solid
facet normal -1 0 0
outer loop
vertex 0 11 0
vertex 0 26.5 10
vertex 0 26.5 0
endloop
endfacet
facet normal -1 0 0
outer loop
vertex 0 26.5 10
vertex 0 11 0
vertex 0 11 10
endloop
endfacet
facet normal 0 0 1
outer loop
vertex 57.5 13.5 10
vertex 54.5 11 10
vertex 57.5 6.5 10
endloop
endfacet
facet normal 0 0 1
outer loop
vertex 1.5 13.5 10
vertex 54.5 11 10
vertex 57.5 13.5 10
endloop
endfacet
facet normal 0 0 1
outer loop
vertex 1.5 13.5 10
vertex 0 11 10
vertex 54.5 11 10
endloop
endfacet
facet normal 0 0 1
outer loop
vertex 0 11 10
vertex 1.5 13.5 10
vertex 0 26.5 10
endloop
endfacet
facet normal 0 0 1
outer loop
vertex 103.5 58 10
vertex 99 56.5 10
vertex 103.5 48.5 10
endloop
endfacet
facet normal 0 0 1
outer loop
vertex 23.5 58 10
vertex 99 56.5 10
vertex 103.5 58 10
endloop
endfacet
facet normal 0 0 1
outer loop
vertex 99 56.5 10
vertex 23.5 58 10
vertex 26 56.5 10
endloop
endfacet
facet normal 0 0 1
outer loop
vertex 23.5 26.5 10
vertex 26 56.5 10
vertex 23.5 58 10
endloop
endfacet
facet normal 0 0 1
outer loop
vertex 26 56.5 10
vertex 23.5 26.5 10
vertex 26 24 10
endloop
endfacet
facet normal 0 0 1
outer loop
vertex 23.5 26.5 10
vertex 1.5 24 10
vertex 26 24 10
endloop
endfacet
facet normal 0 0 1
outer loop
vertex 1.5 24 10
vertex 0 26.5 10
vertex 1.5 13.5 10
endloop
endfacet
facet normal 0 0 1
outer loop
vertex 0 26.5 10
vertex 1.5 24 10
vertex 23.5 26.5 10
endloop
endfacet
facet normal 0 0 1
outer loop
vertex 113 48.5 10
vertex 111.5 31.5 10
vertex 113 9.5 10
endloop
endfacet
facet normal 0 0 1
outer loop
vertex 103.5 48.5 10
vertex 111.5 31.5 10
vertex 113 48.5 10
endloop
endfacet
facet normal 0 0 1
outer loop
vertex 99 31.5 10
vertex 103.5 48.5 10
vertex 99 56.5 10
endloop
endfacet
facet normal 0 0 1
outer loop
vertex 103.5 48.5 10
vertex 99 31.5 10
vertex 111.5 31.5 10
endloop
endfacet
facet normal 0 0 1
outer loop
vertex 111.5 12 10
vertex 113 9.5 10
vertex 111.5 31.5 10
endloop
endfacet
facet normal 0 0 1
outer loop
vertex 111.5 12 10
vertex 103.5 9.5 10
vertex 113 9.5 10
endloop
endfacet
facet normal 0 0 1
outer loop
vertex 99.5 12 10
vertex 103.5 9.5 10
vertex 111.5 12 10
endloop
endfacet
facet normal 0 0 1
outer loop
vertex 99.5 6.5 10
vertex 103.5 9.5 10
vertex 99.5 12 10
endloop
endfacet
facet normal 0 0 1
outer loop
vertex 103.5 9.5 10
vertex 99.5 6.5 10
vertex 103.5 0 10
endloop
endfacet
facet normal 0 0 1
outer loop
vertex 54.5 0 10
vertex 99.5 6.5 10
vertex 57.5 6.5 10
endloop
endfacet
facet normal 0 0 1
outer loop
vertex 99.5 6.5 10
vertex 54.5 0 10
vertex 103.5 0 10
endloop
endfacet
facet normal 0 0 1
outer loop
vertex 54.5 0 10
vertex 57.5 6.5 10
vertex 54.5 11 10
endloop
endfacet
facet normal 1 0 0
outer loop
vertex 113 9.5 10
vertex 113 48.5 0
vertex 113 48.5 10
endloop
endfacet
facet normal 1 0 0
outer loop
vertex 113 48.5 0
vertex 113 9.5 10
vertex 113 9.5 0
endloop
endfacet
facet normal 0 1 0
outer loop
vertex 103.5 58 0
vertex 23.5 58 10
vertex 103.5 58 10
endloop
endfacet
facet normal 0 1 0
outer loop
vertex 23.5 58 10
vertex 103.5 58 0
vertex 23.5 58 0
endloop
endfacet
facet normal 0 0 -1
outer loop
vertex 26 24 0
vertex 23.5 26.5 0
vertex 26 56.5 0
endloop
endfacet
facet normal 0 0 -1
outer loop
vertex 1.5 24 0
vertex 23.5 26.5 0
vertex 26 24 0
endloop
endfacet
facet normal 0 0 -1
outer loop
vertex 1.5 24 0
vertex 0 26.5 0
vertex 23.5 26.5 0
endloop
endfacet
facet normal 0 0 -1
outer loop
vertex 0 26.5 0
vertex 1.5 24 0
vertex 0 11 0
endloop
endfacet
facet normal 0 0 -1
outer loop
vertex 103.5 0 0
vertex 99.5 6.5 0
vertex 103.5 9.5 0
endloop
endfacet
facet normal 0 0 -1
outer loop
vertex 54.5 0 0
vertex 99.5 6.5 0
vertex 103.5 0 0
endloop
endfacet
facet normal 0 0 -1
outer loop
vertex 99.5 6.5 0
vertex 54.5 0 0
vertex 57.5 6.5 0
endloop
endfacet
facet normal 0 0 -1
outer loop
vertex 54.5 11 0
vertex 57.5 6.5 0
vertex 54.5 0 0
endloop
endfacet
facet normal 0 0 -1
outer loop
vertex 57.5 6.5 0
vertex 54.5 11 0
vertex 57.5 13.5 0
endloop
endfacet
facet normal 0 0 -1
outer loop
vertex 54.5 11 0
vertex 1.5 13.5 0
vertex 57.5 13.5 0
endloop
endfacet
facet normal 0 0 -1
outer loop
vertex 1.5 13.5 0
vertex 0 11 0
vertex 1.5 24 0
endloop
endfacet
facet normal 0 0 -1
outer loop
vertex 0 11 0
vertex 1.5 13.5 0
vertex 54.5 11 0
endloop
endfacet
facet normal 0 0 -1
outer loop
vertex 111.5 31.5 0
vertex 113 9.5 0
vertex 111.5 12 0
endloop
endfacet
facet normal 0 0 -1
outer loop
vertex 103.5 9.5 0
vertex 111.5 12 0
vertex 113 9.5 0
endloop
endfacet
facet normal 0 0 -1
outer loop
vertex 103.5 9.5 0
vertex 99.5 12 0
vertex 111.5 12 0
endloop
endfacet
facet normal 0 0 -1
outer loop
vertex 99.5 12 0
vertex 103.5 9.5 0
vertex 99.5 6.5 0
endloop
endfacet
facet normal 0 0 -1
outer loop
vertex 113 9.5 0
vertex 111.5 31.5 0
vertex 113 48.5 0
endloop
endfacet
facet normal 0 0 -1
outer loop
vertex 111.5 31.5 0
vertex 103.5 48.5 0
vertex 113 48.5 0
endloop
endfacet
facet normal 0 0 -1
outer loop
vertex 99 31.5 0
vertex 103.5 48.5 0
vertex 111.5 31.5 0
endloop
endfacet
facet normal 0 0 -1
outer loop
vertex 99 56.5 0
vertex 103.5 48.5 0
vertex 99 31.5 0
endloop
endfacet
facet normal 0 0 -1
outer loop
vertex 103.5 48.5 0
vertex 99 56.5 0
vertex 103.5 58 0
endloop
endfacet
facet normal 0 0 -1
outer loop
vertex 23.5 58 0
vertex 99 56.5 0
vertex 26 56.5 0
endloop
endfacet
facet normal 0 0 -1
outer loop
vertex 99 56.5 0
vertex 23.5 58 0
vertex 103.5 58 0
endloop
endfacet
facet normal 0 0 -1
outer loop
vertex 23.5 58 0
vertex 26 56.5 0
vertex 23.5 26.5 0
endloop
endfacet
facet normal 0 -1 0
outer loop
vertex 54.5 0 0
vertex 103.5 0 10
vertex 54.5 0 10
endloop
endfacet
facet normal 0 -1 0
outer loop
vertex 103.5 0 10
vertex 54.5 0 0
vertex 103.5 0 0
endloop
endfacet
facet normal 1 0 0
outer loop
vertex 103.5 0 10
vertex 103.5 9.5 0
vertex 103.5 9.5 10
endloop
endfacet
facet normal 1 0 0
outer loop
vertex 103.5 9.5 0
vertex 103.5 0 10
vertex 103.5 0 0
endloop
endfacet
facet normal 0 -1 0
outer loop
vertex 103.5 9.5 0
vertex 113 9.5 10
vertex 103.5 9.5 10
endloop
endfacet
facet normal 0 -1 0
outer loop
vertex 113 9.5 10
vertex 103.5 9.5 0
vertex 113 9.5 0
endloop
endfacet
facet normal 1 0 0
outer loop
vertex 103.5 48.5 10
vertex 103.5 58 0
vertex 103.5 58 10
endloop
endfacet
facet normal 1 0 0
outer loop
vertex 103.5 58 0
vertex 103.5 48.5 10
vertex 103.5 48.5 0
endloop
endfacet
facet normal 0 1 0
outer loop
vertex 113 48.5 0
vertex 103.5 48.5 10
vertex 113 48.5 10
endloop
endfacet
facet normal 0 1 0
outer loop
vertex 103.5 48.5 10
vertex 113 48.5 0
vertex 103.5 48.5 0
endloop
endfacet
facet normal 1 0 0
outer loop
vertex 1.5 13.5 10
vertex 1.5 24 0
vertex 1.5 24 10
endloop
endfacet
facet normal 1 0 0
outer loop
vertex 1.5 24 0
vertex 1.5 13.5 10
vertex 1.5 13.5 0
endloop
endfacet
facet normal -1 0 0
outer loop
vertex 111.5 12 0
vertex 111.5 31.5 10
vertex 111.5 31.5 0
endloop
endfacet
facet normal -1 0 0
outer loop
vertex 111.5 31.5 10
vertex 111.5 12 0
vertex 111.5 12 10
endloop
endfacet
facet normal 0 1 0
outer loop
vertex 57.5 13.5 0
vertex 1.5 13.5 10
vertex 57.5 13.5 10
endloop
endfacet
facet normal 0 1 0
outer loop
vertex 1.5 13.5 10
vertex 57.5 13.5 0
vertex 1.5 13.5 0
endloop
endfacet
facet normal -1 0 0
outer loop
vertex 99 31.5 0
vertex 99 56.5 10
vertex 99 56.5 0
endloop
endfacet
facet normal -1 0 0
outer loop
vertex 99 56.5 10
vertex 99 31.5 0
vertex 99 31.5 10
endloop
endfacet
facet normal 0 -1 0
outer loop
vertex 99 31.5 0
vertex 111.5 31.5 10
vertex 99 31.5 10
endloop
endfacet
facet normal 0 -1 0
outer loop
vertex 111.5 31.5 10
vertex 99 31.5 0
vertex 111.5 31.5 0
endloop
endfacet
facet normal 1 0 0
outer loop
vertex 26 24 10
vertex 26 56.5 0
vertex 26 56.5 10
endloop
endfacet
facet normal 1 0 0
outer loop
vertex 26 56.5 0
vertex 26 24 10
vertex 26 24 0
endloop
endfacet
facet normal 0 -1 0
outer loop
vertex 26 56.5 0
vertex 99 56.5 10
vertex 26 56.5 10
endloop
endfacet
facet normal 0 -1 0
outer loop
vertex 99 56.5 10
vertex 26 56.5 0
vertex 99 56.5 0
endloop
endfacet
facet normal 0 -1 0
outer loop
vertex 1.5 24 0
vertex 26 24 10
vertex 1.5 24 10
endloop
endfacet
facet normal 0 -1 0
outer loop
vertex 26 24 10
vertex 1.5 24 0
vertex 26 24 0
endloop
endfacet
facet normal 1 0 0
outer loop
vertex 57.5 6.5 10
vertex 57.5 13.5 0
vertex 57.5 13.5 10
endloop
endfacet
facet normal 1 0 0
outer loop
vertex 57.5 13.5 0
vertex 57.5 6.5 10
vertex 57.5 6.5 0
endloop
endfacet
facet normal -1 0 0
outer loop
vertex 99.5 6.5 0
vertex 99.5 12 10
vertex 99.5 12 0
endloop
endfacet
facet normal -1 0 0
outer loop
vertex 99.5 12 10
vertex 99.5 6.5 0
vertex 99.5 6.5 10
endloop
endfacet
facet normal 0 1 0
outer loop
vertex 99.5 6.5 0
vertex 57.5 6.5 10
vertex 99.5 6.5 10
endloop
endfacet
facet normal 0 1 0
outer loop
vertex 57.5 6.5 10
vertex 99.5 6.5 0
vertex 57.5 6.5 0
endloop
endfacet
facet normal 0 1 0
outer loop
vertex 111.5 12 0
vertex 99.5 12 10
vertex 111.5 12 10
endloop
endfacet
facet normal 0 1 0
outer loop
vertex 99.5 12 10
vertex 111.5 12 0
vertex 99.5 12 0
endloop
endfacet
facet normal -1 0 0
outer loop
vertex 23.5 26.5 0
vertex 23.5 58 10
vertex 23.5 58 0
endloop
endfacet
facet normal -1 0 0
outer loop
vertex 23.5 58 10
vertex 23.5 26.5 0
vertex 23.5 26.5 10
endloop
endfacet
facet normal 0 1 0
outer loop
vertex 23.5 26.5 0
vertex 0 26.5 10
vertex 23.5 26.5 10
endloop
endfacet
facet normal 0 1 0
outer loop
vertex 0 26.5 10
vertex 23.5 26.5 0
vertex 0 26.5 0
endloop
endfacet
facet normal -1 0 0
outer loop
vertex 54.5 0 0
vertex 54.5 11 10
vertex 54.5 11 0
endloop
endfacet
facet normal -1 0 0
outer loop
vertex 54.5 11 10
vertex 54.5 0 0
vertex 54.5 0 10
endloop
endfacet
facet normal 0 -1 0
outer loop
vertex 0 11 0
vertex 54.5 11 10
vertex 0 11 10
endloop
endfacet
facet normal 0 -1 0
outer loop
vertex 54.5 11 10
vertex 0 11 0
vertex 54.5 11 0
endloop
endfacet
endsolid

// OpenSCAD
//Rozmery kovové krabicky vnitrni
krabicka_x=113;
krabicka_y=58;
krabicka_z=10;  //38

krabicka_otvor_hrana=9.5;

//Rozmery casty modulu
pcb_x=110;
pcb_y=6;

baterka_x=73;
baterka_y=37;

konektor_x=12.5;
konektor_y=12;

SD_karta_x=42;
SD_karta_y=13;

SD_karta_mensi_x=12;
SD_karta_mensi_y=7.5;

dioda_x=24.5;
dioda_y=4.5;

difference(){

KRABICKA();
    translate([1.5,19.5,-0.5]) 
MODUL();    
    } 

module KRABICKA()
    {
    difference(){
        cube([krabicka_x,krabicka_y,krabicka_z],center=false);

//otvory
        translate([0,0,-0.5]) 
            cube([krabicka_otvor_hrana,krabicka_otvor_hrana,krabicka_z+1],center=false);
    
        translate([krabicka_x-krabicka_otvor_hrana,0,-0.5]) 
            cube([krabicka_otvor_hrana,krabicka_otvor_hrana,krabicka_z+1],center=false);
        
        translate([0,krabicka_y-krabicka_otvor_hrana,-0.5]) 
            cube([krabicka_otvor_hrana,krabicka_otvor_hrana,krabicka_z+1],center=false);
    
        translate([krabicka_x-krabicka_otvor_hrana,krabicka_y-krabicka_otvor_hrana,-0.5]) 
            cube([krabicka_otvor_hrana,krabicka_otvor_hrana,krabicka_z+1],center=false);


                }
    }   


module MODUL()
    {

    //pcb
    translate([0,-pcb_y,-0.5]) 
        cube([pcb_x,pcb_y,krabicka_z+1],center=false);

    //konektor
    translate([pcb_x-konektor_x,0,-0.5]) 
        cube([konektor_x,konektor_y,krabicka_z+1],center=false);

    //baterka
    translate([pcb_x-konektor_x-baterka_x,0,-0.5]) 
        cube([baterka_x,baterka_y,krabicka_z+1],center=false);

    //dioda
    translate([pcb_x-konektor_x-baterka_x-dioda_x,0,-0.5]) 
        cube([dioda_x,dioda_y,krabicka_z+1],center=false);

    //SD karta
    translate([pcb_x-SD_karta_x-SD_karta_mensi_x,-SD_karta_y,-0.5]) 
        cube([SD_karta_x,SD_karta_y,krabicka_z+1],center=false);
        
      //SD karta mensi otvor
    translate([pcb_x-SD_karta_mensi_x,-SD_karta_mensi_y,-0.5]) 
        cube([SD_karta_mensi_x,SD_karta_mensi_y,krabicka_z+1],center=false);  
     
  //vyrez levy horni
   translate([-2,7,-0.5]) 
       cube([24,60,krabicka_z+1],center=false);  
        
         //vyrez levy dolni
   translate([-2,-21,-0.5]) 
        cube([55,12.5,krabicka_z+1],center=false);  
    
     }
